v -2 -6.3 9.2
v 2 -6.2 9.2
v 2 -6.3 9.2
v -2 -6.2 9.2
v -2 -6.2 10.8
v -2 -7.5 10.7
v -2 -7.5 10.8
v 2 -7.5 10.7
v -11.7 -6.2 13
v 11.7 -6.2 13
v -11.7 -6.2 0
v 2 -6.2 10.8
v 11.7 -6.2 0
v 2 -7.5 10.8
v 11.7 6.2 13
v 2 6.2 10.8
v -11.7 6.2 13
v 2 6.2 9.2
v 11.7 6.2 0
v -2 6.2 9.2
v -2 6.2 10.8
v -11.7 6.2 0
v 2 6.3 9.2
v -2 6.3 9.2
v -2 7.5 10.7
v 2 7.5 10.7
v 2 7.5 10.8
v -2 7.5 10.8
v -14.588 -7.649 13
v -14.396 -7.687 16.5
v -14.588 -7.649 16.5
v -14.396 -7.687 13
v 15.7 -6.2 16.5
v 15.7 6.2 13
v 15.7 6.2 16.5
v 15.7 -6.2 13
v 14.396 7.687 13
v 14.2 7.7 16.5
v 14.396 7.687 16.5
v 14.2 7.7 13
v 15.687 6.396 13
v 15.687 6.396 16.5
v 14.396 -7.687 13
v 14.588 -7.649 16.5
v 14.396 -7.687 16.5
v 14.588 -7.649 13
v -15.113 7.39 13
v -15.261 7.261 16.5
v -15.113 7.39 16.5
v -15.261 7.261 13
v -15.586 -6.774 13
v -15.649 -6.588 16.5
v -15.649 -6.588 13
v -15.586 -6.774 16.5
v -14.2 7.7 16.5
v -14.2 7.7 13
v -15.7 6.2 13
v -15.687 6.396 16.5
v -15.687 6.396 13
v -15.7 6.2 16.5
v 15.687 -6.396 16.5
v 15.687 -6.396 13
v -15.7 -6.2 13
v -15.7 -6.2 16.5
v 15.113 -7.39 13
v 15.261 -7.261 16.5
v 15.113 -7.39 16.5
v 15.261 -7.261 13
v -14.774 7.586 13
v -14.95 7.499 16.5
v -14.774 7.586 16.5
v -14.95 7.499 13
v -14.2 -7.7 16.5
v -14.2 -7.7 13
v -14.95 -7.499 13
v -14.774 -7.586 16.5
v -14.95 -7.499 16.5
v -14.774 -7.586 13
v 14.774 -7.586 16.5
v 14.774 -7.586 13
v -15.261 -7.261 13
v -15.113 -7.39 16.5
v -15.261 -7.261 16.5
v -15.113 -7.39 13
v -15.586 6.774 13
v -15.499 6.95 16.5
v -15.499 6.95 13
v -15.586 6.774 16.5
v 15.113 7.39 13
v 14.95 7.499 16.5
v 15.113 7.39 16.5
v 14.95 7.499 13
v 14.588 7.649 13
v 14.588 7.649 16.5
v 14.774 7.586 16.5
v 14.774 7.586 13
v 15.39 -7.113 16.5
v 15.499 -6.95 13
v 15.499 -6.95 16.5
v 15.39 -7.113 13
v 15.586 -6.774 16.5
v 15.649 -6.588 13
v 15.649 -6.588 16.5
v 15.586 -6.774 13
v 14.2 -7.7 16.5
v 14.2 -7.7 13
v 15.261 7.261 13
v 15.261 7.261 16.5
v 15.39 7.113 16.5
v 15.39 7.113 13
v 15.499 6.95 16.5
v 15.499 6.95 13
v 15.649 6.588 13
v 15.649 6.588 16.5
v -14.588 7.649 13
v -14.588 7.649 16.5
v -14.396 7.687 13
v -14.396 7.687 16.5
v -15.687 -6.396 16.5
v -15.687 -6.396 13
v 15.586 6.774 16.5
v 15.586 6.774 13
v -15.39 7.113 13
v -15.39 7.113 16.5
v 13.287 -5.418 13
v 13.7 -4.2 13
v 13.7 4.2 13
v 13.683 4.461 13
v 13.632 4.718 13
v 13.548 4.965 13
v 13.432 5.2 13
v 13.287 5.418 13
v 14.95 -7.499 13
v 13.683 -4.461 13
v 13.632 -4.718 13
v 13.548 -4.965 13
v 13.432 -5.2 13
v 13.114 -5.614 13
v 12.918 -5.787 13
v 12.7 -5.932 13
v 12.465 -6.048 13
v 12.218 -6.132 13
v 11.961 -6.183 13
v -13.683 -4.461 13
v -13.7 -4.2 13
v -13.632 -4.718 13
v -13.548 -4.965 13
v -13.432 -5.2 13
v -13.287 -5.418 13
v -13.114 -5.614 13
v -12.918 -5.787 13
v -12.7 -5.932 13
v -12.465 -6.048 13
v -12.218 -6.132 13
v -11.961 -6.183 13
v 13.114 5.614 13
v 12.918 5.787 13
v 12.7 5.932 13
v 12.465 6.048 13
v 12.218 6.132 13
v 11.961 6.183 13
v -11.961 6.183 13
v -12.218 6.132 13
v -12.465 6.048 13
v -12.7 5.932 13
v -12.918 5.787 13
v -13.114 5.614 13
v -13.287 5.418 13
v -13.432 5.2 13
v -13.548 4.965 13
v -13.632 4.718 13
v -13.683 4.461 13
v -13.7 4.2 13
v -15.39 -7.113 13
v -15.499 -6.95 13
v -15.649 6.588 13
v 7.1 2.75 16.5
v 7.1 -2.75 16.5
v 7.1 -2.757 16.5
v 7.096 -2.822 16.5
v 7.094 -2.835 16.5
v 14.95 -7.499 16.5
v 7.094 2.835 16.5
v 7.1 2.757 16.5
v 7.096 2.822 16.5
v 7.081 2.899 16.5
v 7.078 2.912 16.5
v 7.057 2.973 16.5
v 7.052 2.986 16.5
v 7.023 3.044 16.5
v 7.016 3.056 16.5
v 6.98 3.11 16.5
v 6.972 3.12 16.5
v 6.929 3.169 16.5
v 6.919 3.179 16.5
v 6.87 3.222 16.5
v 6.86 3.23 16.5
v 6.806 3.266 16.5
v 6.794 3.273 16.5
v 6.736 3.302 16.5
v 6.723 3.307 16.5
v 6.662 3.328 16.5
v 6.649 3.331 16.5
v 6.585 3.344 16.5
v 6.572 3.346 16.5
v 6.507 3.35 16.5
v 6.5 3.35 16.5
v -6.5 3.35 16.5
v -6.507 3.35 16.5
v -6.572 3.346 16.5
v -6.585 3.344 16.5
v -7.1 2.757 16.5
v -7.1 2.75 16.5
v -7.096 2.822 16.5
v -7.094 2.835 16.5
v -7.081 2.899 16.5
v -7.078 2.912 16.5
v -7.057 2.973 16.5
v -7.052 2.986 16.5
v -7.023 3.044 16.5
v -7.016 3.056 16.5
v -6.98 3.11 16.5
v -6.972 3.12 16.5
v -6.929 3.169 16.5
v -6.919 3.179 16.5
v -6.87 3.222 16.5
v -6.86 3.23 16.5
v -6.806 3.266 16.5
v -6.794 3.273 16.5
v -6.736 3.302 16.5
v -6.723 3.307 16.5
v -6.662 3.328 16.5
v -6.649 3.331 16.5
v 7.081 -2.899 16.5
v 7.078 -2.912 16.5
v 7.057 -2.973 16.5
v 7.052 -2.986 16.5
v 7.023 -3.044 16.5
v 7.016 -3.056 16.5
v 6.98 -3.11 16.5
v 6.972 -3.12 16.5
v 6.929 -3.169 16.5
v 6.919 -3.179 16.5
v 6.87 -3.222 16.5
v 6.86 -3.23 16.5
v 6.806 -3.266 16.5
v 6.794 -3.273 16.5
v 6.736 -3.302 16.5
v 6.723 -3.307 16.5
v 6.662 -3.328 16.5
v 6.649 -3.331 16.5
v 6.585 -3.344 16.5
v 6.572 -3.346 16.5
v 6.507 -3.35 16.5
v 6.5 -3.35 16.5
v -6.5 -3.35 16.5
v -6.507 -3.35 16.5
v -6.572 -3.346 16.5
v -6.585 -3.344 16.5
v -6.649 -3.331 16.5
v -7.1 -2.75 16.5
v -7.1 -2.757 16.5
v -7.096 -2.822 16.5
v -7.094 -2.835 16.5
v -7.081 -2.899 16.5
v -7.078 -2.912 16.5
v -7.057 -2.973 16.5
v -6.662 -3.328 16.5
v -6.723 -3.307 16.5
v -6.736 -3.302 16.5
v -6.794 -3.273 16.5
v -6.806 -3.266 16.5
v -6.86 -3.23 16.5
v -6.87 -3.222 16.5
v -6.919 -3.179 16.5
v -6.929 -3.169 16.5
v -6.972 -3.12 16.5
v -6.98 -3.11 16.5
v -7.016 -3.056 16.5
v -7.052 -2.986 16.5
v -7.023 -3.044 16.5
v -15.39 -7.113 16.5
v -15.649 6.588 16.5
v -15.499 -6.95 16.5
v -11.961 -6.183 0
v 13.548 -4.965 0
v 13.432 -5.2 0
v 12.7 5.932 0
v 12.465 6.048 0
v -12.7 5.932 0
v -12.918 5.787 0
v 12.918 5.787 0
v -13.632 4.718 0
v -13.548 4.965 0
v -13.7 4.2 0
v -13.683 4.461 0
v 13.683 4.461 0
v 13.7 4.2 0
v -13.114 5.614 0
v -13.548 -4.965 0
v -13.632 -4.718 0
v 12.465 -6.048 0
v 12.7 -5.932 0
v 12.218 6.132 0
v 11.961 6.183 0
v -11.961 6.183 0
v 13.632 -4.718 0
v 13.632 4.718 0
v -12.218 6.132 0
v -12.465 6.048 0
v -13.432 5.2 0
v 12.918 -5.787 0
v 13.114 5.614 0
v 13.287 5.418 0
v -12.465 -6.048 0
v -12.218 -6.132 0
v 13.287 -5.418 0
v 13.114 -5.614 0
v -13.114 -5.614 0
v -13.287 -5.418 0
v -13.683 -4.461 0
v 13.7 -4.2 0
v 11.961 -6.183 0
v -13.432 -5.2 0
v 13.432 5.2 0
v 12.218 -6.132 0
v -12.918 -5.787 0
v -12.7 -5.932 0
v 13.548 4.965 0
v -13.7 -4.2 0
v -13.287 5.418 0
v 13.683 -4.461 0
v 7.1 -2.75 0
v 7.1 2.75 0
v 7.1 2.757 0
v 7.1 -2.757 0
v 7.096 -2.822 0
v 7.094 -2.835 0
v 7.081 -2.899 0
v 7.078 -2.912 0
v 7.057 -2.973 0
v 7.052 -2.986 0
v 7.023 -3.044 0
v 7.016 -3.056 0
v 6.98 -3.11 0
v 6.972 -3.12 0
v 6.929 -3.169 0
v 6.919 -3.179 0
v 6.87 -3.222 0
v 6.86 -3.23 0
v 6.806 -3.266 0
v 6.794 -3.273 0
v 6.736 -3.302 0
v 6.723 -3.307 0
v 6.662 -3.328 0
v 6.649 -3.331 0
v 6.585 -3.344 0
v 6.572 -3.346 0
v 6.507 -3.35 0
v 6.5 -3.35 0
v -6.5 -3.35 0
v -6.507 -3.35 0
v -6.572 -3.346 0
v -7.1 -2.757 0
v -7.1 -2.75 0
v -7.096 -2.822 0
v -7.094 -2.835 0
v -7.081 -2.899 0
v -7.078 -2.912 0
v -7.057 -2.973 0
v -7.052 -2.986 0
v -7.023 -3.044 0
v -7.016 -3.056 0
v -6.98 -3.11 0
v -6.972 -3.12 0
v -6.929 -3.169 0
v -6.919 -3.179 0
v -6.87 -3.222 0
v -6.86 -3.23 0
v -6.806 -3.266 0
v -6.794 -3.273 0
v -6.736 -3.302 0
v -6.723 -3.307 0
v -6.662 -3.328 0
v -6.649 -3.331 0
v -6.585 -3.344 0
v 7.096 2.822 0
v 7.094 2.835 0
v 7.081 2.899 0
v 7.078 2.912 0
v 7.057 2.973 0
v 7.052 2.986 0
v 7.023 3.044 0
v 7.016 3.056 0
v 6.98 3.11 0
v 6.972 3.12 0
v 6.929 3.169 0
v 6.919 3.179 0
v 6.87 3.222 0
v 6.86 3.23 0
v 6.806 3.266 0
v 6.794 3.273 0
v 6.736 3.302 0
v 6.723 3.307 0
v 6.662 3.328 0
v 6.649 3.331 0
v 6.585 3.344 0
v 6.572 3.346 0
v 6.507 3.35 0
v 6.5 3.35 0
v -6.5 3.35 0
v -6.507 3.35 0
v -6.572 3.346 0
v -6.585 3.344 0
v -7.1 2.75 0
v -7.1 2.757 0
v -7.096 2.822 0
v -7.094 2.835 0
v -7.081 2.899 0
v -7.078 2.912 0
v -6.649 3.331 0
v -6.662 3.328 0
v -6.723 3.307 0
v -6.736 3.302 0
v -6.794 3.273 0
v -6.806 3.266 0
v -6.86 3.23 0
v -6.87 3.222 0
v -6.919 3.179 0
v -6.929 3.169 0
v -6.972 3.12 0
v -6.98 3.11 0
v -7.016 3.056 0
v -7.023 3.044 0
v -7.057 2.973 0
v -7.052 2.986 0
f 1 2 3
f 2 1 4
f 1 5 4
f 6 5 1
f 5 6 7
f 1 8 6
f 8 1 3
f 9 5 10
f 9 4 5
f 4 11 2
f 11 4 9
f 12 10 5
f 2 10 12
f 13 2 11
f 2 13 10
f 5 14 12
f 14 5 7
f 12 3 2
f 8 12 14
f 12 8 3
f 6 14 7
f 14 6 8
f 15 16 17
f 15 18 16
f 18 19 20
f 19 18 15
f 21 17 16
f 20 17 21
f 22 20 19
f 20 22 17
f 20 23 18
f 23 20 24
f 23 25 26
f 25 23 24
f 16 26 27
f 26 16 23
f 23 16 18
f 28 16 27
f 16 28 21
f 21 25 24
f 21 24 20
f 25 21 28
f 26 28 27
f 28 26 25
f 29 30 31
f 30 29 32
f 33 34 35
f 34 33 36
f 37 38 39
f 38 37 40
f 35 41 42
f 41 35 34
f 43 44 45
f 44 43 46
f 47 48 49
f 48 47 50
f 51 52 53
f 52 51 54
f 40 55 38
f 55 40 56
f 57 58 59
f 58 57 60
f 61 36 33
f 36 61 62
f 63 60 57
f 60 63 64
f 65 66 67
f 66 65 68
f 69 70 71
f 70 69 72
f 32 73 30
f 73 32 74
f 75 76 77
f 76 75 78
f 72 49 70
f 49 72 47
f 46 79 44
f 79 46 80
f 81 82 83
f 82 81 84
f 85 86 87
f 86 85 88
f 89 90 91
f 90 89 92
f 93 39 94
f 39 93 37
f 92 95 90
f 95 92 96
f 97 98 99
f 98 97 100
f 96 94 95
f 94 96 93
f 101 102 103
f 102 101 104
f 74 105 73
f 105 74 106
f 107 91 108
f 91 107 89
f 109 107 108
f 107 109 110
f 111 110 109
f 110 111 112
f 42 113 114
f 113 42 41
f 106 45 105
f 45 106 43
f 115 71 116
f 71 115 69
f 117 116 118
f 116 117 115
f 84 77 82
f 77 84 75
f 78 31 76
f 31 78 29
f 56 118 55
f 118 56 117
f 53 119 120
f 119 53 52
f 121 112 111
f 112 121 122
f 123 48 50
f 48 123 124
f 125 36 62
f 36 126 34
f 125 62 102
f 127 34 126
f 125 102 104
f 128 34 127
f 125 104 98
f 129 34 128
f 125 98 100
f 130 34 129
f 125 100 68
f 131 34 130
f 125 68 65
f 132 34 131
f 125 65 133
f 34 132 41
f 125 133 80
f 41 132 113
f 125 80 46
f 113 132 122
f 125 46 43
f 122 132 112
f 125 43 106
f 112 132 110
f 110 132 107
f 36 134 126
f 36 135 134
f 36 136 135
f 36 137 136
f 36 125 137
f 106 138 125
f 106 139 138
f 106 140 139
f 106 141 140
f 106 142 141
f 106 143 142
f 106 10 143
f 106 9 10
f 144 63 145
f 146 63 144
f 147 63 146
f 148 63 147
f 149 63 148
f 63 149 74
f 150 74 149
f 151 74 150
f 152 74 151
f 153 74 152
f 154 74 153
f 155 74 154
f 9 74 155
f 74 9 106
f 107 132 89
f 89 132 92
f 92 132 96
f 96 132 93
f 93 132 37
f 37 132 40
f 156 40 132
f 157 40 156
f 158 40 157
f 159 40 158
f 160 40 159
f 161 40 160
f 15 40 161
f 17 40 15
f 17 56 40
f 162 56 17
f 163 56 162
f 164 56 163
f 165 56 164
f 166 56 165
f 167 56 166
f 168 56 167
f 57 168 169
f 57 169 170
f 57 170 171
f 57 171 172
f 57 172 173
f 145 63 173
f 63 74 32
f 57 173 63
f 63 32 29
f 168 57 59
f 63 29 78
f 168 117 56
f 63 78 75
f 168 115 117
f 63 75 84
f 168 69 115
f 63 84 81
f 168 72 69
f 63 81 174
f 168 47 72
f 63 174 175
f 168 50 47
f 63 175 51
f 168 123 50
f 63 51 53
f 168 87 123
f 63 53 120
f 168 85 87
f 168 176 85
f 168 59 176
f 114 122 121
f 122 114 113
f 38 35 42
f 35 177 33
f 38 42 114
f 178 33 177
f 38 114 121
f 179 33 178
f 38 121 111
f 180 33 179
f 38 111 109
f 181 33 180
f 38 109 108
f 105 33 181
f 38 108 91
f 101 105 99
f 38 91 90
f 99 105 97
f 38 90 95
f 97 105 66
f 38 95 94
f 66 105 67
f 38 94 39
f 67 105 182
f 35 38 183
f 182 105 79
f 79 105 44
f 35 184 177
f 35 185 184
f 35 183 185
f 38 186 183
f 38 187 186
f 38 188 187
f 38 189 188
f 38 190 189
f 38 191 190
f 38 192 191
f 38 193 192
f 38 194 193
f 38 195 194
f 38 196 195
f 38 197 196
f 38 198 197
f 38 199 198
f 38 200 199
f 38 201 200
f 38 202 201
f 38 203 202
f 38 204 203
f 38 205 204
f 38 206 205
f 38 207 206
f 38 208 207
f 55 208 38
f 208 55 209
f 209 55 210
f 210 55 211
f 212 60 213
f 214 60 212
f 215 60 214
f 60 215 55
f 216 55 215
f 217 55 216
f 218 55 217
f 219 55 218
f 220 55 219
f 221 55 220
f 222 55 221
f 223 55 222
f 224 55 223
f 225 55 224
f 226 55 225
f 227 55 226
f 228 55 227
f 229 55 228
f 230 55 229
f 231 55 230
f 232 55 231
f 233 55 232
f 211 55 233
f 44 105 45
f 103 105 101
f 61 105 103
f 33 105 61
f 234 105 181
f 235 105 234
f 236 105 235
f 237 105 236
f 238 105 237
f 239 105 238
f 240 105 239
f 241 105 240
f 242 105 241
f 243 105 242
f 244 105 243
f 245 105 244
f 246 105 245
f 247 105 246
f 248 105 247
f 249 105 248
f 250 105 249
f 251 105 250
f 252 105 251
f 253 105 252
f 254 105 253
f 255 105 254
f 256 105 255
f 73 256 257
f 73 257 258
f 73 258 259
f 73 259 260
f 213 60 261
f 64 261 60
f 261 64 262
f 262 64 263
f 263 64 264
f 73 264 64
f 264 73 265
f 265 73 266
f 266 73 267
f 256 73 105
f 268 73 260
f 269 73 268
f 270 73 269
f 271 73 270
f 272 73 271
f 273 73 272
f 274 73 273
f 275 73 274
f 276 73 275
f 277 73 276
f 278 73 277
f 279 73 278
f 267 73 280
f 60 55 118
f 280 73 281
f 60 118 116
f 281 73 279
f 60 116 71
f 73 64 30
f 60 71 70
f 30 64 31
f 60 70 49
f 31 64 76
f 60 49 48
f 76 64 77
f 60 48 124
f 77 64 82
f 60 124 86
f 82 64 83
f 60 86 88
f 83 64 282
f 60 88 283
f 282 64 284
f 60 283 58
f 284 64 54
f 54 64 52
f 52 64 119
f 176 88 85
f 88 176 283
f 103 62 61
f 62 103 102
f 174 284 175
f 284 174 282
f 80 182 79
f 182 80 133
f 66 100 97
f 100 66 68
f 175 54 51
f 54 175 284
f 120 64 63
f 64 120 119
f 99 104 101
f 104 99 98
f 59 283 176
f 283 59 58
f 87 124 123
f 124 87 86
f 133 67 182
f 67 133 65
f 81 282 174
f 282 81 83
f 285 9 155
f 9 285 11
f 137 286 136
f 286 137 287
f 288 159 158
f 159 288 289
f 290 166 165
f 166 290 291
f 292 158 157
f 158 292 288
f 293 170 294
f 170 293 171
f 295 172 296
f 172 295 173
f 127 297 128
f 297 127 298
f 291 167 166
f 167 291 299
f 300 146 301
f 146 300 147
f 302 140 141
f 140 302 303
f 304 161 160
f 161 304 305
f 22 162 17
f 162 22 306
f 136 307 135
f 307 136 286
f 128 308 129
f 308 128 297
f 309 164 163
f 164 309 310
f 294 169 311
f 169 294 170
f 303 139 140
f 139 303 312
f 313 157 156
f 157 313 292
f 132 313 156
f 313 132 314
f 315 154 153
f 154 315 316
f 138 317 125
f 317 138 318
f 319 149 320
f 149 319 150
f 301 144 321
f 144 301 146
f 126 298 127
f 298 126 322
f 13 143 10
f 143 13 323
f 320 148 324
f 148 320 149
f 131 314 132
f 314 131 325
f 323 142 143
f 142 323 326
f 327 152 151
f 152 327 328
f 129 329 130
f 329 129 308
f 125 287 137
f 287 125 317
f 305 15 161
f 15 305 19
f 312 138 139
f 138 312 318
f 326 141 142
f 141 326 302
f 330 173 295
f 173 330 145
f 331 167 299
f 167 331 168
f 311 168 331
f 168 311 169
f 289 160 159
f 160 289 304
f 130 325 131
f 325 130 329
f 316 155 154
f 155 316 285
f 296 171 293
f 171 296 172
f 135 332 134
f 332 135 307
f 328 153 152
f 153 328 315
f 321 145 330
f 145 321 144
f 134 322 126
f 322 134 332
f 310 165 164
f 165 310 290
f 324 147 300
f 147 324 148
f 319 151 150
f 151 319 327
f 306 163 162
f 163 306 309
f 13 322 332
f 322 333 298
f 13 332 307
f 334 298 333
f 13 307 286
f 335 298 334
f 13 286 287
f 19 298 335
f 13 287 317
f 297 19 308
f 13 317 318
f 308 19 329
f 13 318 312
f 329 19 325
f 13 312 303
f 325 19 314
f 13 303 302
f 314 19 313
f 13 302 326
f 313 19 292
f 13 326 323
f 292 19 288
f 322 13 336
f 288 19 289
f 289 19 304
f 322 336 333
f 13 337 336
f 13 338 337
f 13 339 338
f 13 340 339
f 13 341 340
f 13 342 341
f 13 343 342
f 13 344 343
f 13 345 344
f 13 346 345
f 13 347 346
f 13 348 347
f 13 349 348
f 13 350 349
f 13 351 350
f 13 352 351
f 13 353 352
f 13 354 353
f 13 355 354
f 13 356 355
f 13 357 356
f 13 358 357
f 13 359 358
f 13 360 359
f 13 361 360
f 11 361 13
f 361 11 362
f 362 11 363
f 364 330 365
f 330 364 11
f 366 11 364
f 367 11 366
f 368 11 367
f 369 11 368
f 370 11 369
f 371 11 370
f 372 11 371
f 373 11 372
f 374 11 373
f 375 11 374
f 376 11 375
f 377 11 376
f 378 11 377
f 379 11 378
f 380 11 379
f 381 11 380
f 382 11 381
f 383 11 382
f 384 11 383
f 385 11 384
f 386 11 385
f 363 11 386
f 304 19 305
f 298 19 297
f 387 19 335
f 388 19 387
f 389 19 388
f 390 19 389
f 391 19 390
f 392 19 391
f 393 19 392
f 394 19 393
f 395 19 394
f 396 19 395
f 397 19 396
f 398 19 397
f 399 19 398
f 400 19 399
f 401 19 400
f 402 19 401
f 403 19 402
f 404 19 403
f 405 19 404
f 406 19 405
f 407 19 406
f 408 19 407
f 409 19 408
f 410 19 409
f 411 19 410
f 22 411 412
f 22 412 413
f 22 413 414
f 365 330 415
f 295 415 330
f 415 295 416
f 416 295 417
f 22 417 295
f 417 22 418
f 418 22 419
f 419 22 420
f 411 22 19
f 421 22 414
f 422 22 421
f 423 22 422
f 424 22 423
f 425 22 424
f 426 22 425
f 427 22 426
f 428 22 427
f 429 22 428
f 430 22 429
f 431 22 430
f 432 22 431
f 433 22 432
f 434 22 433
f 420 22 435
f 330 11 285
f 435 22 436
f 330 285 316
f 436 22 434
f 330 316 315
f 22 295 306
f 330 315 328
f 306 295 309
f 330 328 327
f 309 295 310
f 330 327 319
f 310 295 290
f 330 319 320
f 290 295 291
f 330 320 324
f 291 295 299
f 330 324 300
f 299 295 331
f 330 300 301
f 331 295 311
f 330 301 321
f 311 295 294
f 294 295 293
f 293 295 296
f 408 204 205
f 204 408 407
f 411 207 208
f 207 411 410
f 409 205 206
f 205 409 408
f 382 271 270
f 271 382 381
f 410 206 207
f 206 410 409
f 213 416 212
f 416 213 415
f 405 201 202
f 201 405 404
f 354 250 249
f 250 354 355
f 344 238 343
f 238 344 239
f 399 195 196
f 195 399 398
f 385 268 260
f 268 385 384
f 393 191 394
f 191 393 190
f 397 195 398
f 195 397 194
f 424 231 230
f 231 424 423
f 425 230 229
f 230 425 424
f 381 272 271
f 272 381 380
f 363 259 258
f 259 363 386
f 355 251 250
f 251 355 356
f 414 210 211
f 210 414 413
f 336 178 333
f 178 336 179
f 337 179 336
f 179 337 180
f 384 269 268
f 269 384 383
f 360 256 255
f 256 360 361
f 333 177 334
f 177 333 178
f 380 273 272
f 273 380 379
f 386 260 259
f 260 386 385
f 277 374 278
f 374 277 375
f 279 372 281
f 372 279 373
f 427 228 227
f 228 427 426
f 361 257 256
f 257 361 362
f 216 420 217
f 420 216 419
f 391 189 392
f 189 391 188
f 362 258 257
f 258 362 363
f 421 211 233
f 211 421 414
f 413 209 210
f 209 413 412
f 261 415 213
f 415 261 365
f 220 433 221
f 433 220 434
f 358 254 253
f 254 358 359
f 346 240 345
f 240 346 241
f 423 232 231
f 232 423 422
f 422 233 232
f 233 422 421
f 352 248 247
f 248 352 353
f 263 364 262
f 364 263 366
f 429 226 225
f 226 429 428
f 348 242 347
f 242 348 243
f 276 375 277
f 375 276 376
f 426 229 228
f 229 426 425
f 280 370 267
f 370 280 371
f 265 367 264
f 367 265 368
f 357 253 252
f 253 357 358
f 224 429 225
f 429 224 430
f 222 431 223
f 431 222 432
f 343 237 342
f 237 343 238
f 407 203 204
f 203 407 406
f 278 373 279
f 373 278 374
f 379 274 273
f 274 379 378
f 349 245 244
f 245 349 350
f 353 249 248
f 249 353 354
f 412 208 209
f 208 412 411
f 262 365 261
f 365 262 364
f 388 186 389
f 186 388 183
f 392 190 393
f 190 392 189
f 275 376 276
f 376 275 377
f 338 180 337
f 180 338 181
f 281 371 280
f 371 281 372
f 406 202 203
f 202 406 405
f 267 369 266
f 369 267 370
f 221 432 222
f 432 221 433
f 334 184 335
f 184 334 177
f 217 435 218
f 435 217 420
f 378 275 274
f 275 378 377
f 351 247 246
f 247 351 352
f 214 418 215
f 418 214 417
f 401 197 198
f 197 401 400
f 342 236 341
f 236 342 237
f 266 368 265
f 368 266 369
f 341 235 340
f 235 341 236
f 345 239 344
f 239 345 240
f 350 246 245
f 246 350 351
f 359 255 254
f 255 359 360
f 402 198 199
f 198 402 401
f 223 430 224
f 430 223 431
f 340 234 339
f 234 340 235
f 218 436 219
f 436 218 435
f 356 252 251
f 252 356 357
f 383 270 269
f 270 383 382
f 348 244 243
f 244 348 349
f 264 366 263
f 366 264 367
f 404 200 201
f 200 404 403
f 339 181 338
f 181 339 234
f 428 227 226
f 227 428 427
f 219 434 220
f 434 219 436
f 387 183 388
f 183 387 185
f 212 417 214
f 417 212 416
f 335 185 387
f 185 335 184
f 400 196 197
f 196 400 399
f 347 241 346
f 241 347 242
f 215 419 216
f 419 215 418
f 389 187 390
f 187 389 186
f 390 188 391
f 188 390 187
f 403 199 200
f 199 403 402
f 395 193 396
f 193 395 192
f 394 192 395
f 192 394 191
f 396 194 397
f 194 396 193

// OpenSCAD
// file: insert_base.scad
// ============================================
// MODULAR CABLE ORGANIZER - BASE INSERT MODULE
// ============================================
// This is the parent module for all insert types
// Include this file and call insert_with_port() with a port shape
// ============================================

include <parameters.scad>

// === BASE INSERT WITH CUSTOM BODY DEPTH ===
module insert_blank_custom(body_depth) {
    union() {
        // Base plate (sits in frame slot)
        rounded_box_rect(insert_width, insert_height, insert_base_depth, 1.5);
        
        // Body (protrudes out front) - custom depth
        translate([0, 0, insert_base_depth])
            rounded_box_rect(insert_body_width, insert_body_height, body_depth, 2);
        
        // Snap tabs on all 4 sides
        snap_tabs_all();
    }
}

// === BASE INSERT (default depth - for backwards compatibility) ===
module insert_blank() {
    insert_blank_custom(insert_body_depth);
}

// === INSERT WITH THROUGH-HOLE PORT (custom depth) ===
// Pass body_depth and a 2D shape as children
module insert_with_port_custom(body_depth) {
    total_depth = insert_base_depth + body_depth;
    difference() {
        insert_blank_custom(body_depth);
        
        // Cut port hole ALL THE WAY through (tube shape)
        translate([0, 0, -0.1])
            linear_extrude(total_depth + 0.2)
            offset(r=port_clearance)  // Add clearance to port opening
            children();
    }
}

// === INSERT WITH THROUGH-HOLE PORT (default depth) ===
module insert_with_port() {
    insert_with_port_custom(insert_body_depth) children();
}

// === PRE-MADE INSERT MODULES WITH CORRECT DEPTHS ===
module insert_usbc() {
    insert_with_port_custom(usbc_body_depth) port_usbc();
}

module insert_usba() {
    insert_with_port_custom(usba_body_depth) port_usba();
}

module insert_usb_mini() {
    insert_with_port_custom(usb_mini_body_depth) port_usb_mini();
}

module insert_usb_micro() {
    insert_with_port_custom(usb_micro_body_depth) port_usb_micro();
}

module insert_usb_b() {
    insert_with_port_custom(usb_b_body_depth) port_usb_b();
}

module insert_lightning() {
    insert_with_port_custom(lightning_body_depth) port_lightning();
}

module insert_hdmi() {
    insert_with_port_custom(hdmi_body_depth) port_hdmi();
}

module insert_audio_jack() {
    insert_with_port_custom(audio_jack_body_depth) port_audio_jack();
}

// === SNAP TABS (on neck/body - catch on frame cutouts) ===
// Tabs are on the body, positioned to engage with frame wall cutouts
module snap_tabs_all() {
    // Position tabs up on body (clear of base/frame)
    tab_z = insert_base_depth + snap_tab_offset;
    
    // Tabs on all 4 sides of the body
    for (angle = [0, 90, 180, 270]) {
        rotate([0, 0, angle])
            translate([0, insert_body_height/2, tab_z])
            neck_snap_tab();
    }
}

module neck_snap_tab() {
    // Wedge shape (FLIPPED): 
    // - Peak/taper on BOTTOM - slides past back plate when inserting
    // - Flat on TOP - catches and holds
    hull() {
        // Peak of wedge (protruding, at BOTTOM of tab)
        translate([-snap_tab_width/2, snap_tab_protrude, 0])
            cube([snap_tab_width, 0.1, 0.1]);
        // Flat top (at body surface, TOP of tab)
        translate([-snap_tab_width/2, 0, snap_tab_thick])
            cube([snap_tab_width, 0.1, 0.1]);
        // Base of wedge (at body surface, bottom)
        translate([-snap_tab_width/2, 0, 0])
            cube([snap_tab_width, 0.1, 0.1]);
    }
}

module snap_tab_horizontal() {
    hull() {
        translate([0, -snap_tab_protrude/2, 0])
            cube([snap_tab_width, 0.1, snap_tab_thick], center=true);
        translate([0, snap_tab_protrude/2, snap_tab_thick * 0.2])
            cube([snap_tab_width, 0.1, snap_tab_thick * 0.6], center=true);
    }
}

module snap_tab_vertical() {
    hull() {
        translate([-snap_tab_protrude/2, 0, 0])
            cube([0.1, snap_tab_width, snap_tab_thick], center=true);
        translate([snap_tab_protrude/2, 0, snap_tab_thick * 0.2])
            cube([0.1, snap_tab_width, snap_tab_thick * 0.6], center=true);
    }
}

// === UTILITY MODULES ===
module rounded_box_rect(w, d, h, r) {
    translate([0, 0, h/2])
        hull() {
            for (x = [-1, 1], y = [-1, 1])
                translate([x * (w/2 - r), y * (d/2 - r), 0])
                    cylinder(h=h, r=r, center=true);
        }
}

// === PORT SHAPE MODULES (2D) ===
// These define the cutout shapes for each connector type

module port_rounded_rect(w, h, r) {
    // Standard rounded rectangle
    hull() {
        for (x = [-1, 1], y = [-1, 1])
            translate([x * (w/2 - r), y * (h/2 - r)])
                circle(r=r);
    }
}

module port_usbc() {
    port_rounded_rect(usbc_w, usbc_h, usbc_r);
}

module port_usba() {
    port_rounded_rect(usba_w, usba_h, usba_r);
}

module port_usb_mini() {
    port_rounded_rect(usb_mini_w, usb_mini_h, usb_mini_r);
}

module port_usb_micro() {
    port_rounded_rect(usb_micro_w, usb_micro_h, usb_micro_r);
}

module port_usb_b() {
    // USB-B has beveled top corners
    hull() {
        // Bottom corners (full radius)
        for (x = [-1, 1])
            translate([x * (usb_b_w/2 - usb_b_r), -(usb_b_h/2 - usb_b_r)])
                circle(r=usb_b_r);
        // Top corners (chamfered - moved inward)
        for (x = [-1, 1])
            translate([x * (usb_b_w/2 - usb_b_r - 1), (usb_b_h/2 - usb_b_r)])
                circle(r=usb_b_r);
    }
}

module port_lightning() {
    port_rounded_rect(lightning_w, lightning_h, lightning_r);
}

module port_hdmi() {
    // HDMI is tapered (wider at top)
    hull() {
        // Top (wider)
        for (x = [-1, 1])
            translate([x * (hdmi_w/2 - hdmi_r), (hdmi_h/2 - hdmi_r)])
                circle(r=hdmi_r);
        // Bottom (narrower)
        for (x = [-1, 1])
            translate([x * (hdmi_w/2 - hdmi_r - 1), -(hdmi_h/2 - hdmi_r)])
                circle(r=hdmi_r);
    }
}

module port_audio_jack() {
    circle(d=audio_jack_dia);
}

module port_label_recess() {
    // Shallow rectangular recess for labels
    square([label_w, label_h], center=true);
}

// === RENDER (for testing this file directly) ===
// insert_blank();
// file: parameters.scad
// ============================================
// MODULAR CABLE ORGANIZER - SHARED PARAMETERS
// ============================================
// All dimensions in mm - include this in all files
// ============================================

$fn = 48;

// === TOLERANCES ===
clearance = 0.3;
port_clearance = 0.1;  // Extra clearance for port openings (reduced - 0.2 was too loose for USB-C)
wall = 1.6;

// === SLOT DIMENSIONS (2:1 aspect ratio) - scaled to 2/3 ===
slot_width = 32;  // Reduced by 1mm for more compact insert
slot_height = 16;  // Reduced by 1mm for more compact insert
slot_depth = 4;  // Reduced from 6mm - less frame depth needed

// === FRAME STRUCTURE ===
frame_wall = 0.5;   // Reduced for more compact frame
frame_border = 8;  // Increased by 10mm for mounting holes with countersink
frame_back = 2;     // Slightly thicker for snap catch strength
mount_hole_dia = 3;
countersink_dia = 6;  // Diameter of countersink for screw heads
countersink_depth = 2;  // Depth of countersink

// === GRID ===
grid_cols = 2;
grid_rows = 2;

// === INSERT BASE DIMENSIONS ===
insert_width = slot_width - (2 * clearance);
insert_height = slot_height - (2 * clearance);
insert_base_depth = slot_depth - 0.5;

// === INSERT BODY (protrudes from frame) ===
insert_body_width = insert_width - 4;
insert_body_height = insert_height - 3;
insert_body_depth = 12;  // Deep enough to accommodate male cable connectors
insert_top_thick = 1.5;  // Top platform thickness

// === SNAP TABS (on neck/body - catch on back plate) ===
snap_tab_width = 4;
snap_tab_protrude = 1.2;  // How far tab sticks out from body
snap_tab_thick = 1.5;     // Z thickness of tab
snap_tab_offset = 2.2;      // Distance from base to tab bottom on insert (increased to clear frame)

// === CONNECTOR PORT DIMENSIONS & BODY DEPTHS ===
// Port dimensions from reference blueprints
// Body depths sized to match typical male connector lengths

// USB-C: 8.4 x 2.6mm, male connector ~9mm
usbc_w = 8.4;
usbc_h = 2.6;
usbc_r = 1.0;
usbc_body_depth = 9;

// USB-A: 14.0 x 6.5mm, male connector ~13mm
usba_w = 14.0;
usba_h = 6.5;
usba_r = 0.5;
usba_body_depth = 13;

// USB Mini: 6.9 x 3.0mm, male connector ~9mm
usb_mini_w = 6.9;
usb_mini_h = 3.0;
usb_mini_r = 0.5;
usb_mini_body_depth = 9;

// USB Micro: 6.9 x 1.8mm, male connector ~7mm
usb_micro_w = 6.9;
usb_micro_h = 1.8;
usb_micro_r = 0.3;
usb_micro_body_depth = 7;

// USB-B: 8.0 x 7.5mm, male connector ~14mm
usb_b_w = 8.0;
usb_b_h = 7.5;
usb_b_r = 1.0;
usb_b_body_depth = 14;

// Lightning: 6.7 x 1.5mm, male connector ~8mm
lightning_w = 6.7;
lightning_h = 1.5;
lightning_r = 0.5;
lightning_body_depth = 8;

// HDMI: 14.0 x 4.5mm, male connector ~16mm
hdmi_w = 14.0;
hdmi_h = 4.5;
hdmi_r = 0.5;
hdmi_body_depth = 16;

// 3.5mm Audio Jack: male plug ~14mm
audio_jack_dia = 6.0;
audio_jack_body_depth = 14;

// Blank/Label: recessed area for label
label_w = 30;
label_h = 12;
label_depth = 0.8;

// === CALCULATED VALUES ===
frame_total_depth = frame_back + slot_depth;
grid_width = (grid_cols * slot_width) + ((grid_cols - 1) * frame_wall);
grid_height = (grid_rows * slot_height) + ((grid_rows - 1) * frame_wall);
frame_width = grid_width + (2 * frame_border);
frame_height_total = grid_height + (2 * frame_border);
insert_total_depth = insert_base_depth + insert_body_depth;
// main file
// ============================================
// PRINT FILE: USB-A Insert
// ============================================
// Body depth: 13mm (matches USB-A male connector)
// Print with port side DOWN (flat on bed)
// No supports needed - through-hole design
// ============================================

include <parameters.scad>
include <insert_base.scad>

// USB-A insert - oriented for printing (port side down)
total_depth = insert_base_depth + usba_body_depth;

rotate([180, 0, 0])
translate([0, 0, -total_depth])
    insert_usba();
